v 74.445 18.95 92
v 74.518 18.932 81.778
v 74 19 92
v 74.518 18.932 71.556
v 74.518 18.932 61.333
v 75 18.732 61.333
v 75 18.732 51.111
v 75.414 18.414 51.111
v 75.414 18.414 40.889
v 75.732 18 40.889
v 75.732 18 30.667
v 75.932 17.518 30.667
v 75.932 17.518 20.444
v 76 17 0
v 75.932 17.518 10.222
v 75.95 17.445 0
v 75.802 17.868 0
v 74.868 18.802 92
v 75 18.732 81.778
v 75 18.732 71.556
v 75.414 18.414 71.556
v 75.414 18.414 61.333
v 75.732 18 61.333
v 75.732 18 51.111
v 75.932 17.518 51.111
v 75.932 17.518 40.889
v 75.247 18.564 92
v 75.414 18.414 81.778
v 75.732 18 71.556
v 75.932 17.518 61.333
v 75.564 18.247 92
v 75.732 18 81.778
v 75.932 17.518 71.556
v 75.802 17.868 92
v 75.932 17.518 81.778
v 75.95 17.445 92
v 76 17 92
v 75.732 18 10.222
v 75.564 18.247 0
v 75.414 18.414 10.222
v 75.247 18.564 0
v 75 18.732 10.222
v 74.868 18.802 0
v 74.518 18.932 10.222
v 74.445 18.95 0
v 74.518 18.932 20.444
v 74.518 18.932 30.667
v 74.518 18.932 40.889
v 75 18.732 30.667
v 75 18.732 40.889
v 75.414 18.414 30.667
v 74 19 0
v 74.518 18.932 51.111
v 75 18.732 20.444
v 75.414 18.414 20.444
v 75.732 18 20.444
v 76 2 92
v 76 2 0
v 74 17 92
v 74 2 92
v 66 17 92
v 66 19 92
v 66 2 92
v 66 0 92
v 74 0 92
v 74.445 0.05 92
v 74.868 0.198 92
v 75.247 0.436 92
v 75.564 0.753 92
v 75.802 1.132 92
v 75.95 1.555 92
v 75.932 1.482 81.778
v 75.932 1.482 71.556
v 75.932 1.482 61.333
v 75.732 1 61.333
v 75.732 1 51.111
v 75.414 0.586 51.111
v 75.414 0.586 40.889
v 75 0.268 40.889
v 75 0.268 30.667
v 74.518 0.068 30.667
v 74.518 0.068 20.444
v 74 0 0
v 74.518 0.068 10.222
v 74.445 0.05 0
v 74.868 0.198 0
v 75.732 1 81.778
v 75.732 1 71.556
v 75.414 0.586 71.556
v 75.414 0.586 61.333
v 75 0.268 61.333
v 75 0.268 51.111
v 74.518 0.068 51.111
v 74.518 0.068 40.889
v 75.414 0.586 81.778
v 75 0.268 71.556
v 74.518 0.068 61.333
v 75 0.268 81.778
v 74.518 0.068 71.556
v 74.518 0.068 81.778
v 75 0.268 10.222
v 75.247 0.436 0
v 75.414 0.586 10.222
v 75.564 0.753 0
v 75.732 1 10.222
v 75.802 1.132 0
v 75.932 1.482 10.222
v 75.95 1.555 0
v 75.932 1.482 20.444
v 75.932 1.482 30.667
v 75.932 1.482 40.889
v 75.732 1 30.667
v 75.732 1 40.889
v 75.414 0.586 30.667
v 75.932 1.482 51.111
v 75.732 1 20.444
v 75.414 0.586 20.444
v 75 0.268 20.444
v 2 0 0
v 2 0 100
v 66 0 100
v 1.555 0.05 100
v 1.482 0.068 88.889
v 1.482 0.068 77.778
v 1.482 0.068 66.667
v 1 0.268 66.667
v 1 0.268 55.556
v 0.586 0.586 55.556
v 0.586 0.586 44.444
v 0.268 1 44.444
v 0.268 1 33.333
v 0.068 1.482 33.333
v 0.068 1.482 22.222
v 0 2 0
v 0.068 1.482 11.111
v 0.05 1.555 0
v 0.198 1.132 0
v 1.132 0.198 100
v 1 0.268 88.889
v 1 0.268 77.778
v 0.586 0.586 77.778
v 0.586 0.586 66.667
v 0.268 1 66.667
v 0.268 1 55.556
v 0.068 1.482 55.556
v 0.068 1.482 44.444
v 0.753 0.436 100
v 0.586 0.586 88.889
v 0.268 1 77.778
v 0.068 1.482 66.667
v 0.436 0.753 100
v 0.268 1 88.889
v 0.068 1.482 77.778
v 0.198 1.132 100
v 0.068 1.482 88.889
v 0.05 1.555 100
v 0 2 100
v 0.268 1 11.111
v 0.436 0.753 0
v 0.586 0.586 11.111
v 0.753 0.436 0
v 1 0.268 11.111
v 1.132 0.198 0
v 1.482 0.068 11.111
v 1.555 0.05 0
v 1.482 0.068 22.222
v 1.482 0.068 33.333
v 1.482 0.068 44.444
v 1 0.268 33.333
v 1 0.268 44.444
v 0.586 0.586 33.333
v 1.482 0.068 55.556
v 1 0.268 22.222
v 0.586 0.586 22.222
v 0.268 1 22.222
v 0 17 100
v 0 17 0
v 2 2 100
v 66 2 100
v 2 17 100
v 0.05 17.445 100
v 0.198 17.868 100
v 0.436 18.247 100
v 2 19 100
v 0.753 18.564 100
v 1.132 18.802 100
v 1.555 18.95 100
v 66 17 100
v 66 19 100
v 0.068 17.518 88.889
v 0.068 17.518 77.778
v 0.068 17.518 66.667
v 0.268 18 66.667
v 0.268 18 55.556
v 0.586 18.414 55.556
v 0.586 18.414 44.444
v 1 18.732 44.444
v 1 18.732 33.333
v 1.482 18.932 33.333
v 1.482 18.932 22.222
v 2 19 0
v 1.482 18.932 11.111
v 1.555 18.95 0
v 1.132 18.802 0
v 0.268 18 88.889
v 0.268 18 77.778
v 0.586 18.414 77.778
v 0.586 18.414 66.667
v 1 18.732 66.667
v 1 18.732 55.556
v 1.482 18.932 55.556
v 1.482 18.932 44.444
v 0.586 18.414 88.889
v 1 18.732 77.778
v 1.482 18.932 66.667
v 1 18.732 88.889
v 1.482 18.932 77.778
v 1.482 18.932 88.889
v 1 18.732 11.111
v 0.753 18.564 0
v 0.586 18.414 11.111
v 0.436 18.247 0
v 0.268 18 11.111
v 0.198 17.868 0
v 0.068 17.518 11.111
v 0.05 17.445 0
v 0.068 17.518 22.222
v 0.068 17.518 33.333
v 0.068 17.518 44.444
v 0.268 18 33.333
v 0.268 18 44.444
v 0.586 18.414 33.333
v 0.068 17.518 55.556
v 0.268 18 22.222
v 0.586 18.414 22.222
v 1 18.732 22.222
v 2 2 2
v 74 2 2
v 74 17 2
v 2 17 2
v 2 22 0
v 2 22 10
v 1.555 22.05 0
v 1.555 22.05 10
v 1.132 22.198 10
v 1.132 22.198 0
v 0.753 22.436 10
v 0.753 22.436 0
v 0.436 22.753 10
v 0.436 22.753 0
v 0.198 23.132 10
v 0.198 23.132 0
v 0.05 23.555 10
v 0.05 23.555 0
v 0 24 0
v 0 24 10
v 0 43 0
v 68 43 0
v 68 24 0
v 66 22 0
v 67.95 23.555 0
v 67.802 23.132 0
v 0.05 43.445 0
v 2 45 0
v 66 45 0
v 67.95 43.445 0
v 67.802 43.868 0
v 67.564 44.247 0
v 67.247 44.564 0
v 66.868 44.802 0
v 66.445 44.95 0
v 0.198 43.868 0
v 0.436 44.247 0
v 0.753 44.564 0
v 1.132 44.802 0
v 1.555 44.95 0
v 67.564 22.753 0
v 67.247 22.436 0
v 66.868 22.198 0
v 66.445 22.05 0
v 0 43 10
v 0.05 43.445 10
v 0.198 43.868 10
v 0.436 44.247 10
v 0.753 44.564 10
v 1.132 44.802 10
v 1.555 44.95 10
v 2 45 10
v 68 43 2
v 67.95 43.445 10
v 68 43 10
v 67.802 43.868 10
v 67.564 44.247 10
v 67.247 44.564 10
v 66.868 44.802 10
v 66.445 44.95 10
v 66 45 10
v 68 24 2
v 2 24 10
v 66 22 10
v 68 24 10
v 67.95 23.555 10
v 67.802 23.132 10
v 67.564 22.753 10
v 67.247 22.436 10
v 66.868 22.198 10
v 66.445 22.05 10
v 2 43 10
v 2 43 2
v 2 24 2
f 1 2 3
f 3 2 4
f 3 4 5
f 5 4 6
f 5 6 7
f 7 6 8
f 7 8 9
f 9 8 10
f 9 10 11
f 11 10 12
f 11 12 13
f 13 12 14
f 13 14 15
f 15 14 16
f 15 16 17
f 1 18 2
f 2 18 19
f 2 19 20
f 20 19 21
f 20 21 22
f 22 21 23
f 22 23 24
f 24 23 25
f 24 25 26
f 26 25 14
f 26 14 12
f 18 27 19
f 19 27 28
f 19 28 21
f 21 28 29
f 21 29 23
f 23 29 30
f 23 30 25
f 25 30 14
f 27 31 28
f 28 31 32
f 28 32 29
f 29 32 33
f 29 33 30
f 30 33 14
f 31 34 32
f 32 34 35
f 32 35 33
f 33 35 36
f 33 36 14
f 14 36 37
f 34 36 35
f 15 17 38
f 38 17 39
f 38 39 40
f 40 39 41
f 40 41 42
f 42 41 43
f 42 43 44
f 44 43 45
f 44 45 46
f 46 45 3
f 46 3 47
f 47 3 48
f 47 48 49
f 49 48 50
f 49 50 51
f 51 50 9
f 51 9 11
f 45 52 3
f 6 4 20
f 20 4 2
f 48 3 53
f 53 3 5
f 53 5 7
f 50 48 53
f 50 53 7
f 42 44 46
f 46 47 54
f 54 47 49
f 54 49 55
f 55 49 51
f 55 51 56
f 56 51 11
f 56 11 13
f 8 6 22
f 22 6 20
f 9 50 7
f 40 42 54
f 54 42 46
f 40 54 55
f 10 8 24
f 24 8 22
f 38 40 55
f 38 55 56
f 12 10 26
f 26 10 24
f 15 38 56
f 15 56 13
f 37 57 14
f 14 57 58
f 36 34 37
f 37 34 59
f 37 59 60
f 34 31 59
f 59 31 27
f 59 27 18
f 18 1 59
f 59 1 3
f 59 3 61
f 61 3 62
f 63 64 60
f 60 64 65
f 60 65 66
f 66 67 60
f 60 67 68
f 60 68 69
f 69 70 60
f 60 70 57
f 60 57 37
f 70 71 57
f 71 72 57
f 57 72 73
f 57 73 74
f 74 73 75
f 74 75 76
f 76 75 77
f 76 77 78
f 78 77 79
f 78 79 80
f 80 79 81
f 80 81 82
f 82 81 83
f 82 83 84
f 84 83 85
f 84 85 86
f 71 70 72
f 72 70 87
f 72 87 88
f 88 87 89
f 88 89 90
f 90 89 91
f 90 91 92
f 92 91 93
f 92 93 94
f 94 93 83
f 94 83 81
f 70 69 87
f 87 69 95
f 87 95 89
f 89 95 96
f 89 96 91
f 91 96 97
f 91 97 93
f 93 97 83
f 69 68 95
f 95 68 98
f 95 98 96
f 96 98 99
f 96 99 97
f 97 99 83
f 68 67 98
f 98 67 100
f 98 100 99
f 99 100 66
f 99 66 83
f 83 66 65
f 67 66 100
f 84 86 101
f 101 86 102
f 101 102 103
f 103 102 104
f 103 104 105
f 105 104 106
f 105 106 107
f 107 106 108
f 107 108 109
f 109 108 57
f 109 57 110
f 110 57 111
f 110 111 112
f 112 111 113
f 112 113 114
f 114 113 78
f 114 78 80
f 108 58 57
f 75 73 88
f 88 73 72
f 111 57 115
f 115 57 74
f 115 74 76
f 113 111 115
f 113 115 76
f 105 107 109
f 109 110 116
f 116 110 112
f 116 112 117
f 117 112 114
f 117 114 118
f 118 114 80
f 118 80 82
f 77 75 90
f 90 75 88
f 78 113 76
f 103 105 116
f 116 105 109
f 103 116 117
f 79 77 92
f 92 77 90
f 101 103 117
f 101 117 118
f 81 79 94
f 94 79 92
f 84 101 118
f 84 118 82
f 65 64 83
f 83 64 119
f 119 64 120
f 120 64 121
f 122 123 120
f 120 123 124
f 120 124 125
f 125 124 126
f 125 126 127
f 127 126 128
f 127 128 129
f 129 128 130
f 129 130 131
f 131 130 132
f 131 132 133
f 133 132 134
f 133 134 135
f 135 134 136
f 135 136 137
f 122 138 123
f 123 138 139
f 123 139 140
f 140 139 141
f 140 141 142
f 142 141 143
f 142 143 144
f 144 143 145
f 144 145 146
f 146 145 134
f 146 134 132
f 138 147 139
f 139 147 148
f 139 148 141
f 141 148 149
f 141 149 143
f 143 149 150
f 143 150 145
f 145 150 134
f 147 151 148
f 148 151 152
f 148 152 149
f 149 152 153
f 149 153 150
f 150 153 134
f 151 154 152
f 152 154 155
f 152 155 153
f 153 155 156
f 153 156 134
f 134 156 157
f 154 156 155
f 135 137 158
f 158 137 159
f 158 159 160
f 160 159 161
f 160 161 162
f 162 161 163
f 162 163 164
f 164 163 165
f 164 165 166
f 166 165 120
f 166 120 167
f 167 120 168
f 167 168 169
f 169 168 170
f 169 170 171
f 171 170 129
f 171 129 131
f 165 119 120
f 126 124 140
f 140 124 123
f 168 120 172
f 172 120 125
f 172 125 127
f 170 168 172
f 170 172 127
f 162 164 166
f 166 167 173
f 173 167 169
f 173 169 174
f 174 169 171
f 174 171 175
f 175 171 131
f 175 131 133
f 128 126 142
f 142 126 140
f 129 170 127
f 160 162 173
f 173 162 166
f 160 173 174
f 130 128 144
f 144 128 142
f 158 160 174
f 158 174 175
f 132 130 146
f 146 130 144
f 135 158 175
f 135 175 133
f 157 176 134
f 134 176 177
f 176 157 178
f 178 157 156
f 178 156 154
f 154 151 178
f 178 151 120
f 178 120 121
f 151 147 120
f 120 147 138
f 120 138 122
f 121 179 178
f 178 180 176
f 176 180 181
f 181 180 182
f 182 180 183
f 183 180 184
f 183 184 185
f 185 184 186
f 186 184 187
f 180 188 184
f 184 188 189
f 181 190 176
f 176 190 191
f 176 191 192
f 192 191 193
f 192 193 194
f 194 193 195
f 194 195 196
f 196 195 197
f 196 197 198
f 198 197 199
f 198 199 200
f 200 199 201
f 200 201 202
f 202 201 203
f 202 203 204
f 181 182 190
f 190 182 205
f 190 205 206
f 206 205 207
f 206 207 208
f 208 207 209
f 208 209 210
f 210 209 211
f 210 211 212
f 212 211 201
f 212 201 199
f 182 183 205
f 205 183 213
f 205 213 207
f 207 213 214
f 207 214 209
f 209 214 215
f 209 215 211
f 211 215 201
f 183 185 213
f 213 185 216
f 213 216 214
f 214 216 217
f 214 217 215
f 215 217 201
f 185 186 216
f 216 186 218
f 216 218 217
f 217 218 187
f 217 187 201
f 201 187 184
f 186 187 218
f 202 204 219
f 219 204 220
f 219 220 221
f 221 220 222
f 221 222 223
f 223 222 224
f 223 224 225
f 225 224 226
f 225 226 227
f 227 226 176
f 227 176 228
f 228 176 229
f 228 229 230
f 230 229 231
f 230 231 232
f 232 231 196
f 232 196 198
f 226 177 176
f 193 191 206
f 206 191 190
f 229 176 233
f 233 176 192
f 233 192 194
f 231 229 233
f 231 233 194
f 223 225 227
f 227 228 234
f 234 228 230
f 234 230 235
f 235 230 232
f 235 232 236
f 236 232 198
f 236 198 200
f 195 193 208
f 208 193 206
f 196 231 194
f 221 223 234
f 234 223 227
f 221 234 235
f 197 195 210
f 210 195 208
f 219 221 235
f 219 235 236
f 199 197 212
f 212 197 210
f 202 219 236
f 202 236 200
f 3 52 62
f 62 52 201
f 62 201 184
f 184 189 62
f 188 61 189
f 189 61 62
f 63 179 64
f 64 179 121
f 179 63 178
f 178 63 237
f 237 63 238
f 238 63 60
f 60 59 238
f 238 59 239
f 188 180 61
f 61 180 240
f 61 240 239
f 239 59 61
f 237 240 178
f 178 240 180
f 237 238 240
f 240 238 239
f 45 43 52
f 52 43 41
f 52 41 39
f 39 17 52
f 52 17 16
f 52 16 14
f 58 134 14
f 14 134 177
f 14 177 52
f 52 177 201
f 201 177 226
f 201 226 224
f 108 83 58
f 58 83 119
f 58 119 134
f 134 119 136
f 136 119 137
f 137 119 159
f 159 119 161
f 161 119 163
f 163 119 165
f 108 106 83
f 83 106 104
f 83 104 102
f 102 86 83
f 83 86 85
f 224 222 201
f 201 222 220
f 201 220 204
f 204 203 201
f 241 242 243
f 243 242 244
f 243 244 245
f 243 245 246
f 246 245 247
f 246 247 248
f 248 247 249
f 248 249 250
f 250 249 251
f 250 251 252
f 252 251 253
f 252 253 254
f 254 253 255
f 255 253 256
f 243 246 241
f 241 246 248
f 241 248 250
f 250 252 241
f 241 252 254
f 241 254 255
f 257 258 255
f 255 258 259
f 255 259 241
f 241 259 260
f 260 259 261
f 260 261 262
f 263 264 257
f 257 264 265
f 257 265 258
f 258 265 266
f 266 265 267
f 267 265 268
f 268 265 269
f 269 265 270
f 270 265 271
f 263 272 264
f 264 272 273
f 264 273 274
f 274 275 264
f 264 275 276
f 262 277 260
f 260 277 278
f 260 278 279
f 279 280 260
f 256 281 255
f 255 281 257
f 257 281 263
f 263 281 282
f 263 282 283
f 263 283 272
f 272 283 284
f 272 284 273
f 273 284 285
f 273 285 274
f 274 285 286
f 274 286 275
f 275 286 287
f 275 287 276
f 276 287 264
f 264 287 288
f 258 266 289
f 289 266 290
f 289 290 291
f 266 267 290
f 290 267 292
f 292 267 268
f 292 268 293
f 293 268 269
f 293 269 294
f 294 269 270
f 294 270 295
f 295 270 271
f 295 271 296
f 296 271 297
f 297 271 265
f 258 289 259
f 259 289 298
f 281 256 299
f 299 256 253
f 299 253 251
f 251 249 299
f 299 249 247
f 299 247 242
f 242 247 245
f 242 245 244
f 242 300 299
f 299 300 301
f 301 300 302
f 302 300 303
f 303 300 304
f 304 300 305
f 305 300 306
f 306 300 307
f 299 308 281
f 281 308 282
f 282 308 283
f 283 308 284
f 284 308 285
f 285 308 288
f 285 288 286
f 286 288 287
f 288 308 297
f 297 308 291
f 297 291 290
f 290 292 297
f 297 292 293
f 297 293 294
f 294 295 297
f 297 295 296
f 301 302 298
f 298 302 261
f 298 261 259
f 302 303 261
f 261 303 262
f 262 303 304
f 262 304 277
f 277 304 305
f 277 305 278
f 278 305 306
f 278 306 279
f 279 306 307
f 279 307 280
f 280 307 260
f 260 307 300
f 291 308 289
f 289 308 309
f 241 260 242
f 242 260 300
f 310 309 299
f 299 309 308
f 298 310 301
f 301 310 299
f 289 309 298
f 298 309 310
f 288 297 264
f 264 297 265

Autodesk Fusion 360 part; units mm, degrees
sketch "Schizzo1" plane through (0, 0, 0) normal (0, 0, 1) x (1, 0, 0)
  line L0 (0, 0) -> (76, 0)
  line L1 (76, 0) -> (76, 19)
  line L2 (76, 19) -> (0, 19)
  line L3 (0, 19) -> (0, 0)
  dimension "d1" = 76
  dimension "d2" = 19
extrude "Estrusione1" add sketch "Schizzo1" along normal blind 100 makes body 1
shell "Svuotamento1" thickness 2 removed faces 1 at (25.3333, 12.6667, 100) on bodies 1
sketch "Schizzo2" plane through (76, 0, 0) normal (1, 0, 0) x (0, 1, 0)
  line L0 (0, 0) -> (19, 0)
  line L1 (19, 0) -> (19, 100)
  line L2 (19, 100) -> (0, 100)
  line L3 (0, 100) -> (0, 0)
  line L4 (0, 100) -> (19, 100)
  line L5 (19, 100) -> (19, 92)
  line L6 (19, 92) -> (0, 92)
  line L7 (0, 92) -> (0, 100)
extrude "Estrusione2" cut sketch "Schizzo2" against normal blind 10 contours L1 L2 L3 L4 L5 L6 L7 bodies 1
sketch "Schizzo3" plane through (0, 0, 0) normal (0, 0, 1) x (1, 0, 0)
  line L0 (0, 45) -> (80, 45)
  line L1 (80, 45) -> (80, 22)
  line L2 (80, 22) -> (0, 22)
  line L3 (0, 22) -> (0, 45)
  dimension "d8" = 80
  dimension "d9" = 23
extrude "Estrusione3" add sketch "Schizzo3" along normal blind 10 separate body makes body 2
shell "Svuotamento2" thickness 2 removed faces 1 at (26.6667, 37.3333, 10) on bodies 2
sketch "Schizzo4" plane through (80, 0, 0) normal (1, 0, 0) x (0, 1, 0)
  line L0 (22, 0) -> (45, 0)
  line L1 (45, 0) -> (45, 10)
  line L2 (45, 10) -> (22, 10)
  line L3 (22, 10) -> (22, 0)
  line L4 (25, 10) -> (42.257, 10)
  line L5 (42.257, 10) -> (42.257, 2.4696)
  line L6 (42.257, 2.4696) -> (25, 2.4696)
  line L7 (25, 2.4696) -> (25, 10)
extrude "Estrusione4" cut sketch "Schizzo4" against normal blind 20 contours L2 L4 L5 L6 L7 bodies 2
extrude "Estrusione5" cut 1 faces at (80, 23, 4.1565) along direction (-1, 0, 0) blind 12 on bodies 2 bodies 2
fillet "Raccordo1" radius 2 8 edges at (0, 19, 50) (0, 0, 50) (76, 0, 46) (76, 19, 46) (68, 22, 5) (68, 45, 5) (0, 45, 5) (0, 22, 5) on bodies 1 2
